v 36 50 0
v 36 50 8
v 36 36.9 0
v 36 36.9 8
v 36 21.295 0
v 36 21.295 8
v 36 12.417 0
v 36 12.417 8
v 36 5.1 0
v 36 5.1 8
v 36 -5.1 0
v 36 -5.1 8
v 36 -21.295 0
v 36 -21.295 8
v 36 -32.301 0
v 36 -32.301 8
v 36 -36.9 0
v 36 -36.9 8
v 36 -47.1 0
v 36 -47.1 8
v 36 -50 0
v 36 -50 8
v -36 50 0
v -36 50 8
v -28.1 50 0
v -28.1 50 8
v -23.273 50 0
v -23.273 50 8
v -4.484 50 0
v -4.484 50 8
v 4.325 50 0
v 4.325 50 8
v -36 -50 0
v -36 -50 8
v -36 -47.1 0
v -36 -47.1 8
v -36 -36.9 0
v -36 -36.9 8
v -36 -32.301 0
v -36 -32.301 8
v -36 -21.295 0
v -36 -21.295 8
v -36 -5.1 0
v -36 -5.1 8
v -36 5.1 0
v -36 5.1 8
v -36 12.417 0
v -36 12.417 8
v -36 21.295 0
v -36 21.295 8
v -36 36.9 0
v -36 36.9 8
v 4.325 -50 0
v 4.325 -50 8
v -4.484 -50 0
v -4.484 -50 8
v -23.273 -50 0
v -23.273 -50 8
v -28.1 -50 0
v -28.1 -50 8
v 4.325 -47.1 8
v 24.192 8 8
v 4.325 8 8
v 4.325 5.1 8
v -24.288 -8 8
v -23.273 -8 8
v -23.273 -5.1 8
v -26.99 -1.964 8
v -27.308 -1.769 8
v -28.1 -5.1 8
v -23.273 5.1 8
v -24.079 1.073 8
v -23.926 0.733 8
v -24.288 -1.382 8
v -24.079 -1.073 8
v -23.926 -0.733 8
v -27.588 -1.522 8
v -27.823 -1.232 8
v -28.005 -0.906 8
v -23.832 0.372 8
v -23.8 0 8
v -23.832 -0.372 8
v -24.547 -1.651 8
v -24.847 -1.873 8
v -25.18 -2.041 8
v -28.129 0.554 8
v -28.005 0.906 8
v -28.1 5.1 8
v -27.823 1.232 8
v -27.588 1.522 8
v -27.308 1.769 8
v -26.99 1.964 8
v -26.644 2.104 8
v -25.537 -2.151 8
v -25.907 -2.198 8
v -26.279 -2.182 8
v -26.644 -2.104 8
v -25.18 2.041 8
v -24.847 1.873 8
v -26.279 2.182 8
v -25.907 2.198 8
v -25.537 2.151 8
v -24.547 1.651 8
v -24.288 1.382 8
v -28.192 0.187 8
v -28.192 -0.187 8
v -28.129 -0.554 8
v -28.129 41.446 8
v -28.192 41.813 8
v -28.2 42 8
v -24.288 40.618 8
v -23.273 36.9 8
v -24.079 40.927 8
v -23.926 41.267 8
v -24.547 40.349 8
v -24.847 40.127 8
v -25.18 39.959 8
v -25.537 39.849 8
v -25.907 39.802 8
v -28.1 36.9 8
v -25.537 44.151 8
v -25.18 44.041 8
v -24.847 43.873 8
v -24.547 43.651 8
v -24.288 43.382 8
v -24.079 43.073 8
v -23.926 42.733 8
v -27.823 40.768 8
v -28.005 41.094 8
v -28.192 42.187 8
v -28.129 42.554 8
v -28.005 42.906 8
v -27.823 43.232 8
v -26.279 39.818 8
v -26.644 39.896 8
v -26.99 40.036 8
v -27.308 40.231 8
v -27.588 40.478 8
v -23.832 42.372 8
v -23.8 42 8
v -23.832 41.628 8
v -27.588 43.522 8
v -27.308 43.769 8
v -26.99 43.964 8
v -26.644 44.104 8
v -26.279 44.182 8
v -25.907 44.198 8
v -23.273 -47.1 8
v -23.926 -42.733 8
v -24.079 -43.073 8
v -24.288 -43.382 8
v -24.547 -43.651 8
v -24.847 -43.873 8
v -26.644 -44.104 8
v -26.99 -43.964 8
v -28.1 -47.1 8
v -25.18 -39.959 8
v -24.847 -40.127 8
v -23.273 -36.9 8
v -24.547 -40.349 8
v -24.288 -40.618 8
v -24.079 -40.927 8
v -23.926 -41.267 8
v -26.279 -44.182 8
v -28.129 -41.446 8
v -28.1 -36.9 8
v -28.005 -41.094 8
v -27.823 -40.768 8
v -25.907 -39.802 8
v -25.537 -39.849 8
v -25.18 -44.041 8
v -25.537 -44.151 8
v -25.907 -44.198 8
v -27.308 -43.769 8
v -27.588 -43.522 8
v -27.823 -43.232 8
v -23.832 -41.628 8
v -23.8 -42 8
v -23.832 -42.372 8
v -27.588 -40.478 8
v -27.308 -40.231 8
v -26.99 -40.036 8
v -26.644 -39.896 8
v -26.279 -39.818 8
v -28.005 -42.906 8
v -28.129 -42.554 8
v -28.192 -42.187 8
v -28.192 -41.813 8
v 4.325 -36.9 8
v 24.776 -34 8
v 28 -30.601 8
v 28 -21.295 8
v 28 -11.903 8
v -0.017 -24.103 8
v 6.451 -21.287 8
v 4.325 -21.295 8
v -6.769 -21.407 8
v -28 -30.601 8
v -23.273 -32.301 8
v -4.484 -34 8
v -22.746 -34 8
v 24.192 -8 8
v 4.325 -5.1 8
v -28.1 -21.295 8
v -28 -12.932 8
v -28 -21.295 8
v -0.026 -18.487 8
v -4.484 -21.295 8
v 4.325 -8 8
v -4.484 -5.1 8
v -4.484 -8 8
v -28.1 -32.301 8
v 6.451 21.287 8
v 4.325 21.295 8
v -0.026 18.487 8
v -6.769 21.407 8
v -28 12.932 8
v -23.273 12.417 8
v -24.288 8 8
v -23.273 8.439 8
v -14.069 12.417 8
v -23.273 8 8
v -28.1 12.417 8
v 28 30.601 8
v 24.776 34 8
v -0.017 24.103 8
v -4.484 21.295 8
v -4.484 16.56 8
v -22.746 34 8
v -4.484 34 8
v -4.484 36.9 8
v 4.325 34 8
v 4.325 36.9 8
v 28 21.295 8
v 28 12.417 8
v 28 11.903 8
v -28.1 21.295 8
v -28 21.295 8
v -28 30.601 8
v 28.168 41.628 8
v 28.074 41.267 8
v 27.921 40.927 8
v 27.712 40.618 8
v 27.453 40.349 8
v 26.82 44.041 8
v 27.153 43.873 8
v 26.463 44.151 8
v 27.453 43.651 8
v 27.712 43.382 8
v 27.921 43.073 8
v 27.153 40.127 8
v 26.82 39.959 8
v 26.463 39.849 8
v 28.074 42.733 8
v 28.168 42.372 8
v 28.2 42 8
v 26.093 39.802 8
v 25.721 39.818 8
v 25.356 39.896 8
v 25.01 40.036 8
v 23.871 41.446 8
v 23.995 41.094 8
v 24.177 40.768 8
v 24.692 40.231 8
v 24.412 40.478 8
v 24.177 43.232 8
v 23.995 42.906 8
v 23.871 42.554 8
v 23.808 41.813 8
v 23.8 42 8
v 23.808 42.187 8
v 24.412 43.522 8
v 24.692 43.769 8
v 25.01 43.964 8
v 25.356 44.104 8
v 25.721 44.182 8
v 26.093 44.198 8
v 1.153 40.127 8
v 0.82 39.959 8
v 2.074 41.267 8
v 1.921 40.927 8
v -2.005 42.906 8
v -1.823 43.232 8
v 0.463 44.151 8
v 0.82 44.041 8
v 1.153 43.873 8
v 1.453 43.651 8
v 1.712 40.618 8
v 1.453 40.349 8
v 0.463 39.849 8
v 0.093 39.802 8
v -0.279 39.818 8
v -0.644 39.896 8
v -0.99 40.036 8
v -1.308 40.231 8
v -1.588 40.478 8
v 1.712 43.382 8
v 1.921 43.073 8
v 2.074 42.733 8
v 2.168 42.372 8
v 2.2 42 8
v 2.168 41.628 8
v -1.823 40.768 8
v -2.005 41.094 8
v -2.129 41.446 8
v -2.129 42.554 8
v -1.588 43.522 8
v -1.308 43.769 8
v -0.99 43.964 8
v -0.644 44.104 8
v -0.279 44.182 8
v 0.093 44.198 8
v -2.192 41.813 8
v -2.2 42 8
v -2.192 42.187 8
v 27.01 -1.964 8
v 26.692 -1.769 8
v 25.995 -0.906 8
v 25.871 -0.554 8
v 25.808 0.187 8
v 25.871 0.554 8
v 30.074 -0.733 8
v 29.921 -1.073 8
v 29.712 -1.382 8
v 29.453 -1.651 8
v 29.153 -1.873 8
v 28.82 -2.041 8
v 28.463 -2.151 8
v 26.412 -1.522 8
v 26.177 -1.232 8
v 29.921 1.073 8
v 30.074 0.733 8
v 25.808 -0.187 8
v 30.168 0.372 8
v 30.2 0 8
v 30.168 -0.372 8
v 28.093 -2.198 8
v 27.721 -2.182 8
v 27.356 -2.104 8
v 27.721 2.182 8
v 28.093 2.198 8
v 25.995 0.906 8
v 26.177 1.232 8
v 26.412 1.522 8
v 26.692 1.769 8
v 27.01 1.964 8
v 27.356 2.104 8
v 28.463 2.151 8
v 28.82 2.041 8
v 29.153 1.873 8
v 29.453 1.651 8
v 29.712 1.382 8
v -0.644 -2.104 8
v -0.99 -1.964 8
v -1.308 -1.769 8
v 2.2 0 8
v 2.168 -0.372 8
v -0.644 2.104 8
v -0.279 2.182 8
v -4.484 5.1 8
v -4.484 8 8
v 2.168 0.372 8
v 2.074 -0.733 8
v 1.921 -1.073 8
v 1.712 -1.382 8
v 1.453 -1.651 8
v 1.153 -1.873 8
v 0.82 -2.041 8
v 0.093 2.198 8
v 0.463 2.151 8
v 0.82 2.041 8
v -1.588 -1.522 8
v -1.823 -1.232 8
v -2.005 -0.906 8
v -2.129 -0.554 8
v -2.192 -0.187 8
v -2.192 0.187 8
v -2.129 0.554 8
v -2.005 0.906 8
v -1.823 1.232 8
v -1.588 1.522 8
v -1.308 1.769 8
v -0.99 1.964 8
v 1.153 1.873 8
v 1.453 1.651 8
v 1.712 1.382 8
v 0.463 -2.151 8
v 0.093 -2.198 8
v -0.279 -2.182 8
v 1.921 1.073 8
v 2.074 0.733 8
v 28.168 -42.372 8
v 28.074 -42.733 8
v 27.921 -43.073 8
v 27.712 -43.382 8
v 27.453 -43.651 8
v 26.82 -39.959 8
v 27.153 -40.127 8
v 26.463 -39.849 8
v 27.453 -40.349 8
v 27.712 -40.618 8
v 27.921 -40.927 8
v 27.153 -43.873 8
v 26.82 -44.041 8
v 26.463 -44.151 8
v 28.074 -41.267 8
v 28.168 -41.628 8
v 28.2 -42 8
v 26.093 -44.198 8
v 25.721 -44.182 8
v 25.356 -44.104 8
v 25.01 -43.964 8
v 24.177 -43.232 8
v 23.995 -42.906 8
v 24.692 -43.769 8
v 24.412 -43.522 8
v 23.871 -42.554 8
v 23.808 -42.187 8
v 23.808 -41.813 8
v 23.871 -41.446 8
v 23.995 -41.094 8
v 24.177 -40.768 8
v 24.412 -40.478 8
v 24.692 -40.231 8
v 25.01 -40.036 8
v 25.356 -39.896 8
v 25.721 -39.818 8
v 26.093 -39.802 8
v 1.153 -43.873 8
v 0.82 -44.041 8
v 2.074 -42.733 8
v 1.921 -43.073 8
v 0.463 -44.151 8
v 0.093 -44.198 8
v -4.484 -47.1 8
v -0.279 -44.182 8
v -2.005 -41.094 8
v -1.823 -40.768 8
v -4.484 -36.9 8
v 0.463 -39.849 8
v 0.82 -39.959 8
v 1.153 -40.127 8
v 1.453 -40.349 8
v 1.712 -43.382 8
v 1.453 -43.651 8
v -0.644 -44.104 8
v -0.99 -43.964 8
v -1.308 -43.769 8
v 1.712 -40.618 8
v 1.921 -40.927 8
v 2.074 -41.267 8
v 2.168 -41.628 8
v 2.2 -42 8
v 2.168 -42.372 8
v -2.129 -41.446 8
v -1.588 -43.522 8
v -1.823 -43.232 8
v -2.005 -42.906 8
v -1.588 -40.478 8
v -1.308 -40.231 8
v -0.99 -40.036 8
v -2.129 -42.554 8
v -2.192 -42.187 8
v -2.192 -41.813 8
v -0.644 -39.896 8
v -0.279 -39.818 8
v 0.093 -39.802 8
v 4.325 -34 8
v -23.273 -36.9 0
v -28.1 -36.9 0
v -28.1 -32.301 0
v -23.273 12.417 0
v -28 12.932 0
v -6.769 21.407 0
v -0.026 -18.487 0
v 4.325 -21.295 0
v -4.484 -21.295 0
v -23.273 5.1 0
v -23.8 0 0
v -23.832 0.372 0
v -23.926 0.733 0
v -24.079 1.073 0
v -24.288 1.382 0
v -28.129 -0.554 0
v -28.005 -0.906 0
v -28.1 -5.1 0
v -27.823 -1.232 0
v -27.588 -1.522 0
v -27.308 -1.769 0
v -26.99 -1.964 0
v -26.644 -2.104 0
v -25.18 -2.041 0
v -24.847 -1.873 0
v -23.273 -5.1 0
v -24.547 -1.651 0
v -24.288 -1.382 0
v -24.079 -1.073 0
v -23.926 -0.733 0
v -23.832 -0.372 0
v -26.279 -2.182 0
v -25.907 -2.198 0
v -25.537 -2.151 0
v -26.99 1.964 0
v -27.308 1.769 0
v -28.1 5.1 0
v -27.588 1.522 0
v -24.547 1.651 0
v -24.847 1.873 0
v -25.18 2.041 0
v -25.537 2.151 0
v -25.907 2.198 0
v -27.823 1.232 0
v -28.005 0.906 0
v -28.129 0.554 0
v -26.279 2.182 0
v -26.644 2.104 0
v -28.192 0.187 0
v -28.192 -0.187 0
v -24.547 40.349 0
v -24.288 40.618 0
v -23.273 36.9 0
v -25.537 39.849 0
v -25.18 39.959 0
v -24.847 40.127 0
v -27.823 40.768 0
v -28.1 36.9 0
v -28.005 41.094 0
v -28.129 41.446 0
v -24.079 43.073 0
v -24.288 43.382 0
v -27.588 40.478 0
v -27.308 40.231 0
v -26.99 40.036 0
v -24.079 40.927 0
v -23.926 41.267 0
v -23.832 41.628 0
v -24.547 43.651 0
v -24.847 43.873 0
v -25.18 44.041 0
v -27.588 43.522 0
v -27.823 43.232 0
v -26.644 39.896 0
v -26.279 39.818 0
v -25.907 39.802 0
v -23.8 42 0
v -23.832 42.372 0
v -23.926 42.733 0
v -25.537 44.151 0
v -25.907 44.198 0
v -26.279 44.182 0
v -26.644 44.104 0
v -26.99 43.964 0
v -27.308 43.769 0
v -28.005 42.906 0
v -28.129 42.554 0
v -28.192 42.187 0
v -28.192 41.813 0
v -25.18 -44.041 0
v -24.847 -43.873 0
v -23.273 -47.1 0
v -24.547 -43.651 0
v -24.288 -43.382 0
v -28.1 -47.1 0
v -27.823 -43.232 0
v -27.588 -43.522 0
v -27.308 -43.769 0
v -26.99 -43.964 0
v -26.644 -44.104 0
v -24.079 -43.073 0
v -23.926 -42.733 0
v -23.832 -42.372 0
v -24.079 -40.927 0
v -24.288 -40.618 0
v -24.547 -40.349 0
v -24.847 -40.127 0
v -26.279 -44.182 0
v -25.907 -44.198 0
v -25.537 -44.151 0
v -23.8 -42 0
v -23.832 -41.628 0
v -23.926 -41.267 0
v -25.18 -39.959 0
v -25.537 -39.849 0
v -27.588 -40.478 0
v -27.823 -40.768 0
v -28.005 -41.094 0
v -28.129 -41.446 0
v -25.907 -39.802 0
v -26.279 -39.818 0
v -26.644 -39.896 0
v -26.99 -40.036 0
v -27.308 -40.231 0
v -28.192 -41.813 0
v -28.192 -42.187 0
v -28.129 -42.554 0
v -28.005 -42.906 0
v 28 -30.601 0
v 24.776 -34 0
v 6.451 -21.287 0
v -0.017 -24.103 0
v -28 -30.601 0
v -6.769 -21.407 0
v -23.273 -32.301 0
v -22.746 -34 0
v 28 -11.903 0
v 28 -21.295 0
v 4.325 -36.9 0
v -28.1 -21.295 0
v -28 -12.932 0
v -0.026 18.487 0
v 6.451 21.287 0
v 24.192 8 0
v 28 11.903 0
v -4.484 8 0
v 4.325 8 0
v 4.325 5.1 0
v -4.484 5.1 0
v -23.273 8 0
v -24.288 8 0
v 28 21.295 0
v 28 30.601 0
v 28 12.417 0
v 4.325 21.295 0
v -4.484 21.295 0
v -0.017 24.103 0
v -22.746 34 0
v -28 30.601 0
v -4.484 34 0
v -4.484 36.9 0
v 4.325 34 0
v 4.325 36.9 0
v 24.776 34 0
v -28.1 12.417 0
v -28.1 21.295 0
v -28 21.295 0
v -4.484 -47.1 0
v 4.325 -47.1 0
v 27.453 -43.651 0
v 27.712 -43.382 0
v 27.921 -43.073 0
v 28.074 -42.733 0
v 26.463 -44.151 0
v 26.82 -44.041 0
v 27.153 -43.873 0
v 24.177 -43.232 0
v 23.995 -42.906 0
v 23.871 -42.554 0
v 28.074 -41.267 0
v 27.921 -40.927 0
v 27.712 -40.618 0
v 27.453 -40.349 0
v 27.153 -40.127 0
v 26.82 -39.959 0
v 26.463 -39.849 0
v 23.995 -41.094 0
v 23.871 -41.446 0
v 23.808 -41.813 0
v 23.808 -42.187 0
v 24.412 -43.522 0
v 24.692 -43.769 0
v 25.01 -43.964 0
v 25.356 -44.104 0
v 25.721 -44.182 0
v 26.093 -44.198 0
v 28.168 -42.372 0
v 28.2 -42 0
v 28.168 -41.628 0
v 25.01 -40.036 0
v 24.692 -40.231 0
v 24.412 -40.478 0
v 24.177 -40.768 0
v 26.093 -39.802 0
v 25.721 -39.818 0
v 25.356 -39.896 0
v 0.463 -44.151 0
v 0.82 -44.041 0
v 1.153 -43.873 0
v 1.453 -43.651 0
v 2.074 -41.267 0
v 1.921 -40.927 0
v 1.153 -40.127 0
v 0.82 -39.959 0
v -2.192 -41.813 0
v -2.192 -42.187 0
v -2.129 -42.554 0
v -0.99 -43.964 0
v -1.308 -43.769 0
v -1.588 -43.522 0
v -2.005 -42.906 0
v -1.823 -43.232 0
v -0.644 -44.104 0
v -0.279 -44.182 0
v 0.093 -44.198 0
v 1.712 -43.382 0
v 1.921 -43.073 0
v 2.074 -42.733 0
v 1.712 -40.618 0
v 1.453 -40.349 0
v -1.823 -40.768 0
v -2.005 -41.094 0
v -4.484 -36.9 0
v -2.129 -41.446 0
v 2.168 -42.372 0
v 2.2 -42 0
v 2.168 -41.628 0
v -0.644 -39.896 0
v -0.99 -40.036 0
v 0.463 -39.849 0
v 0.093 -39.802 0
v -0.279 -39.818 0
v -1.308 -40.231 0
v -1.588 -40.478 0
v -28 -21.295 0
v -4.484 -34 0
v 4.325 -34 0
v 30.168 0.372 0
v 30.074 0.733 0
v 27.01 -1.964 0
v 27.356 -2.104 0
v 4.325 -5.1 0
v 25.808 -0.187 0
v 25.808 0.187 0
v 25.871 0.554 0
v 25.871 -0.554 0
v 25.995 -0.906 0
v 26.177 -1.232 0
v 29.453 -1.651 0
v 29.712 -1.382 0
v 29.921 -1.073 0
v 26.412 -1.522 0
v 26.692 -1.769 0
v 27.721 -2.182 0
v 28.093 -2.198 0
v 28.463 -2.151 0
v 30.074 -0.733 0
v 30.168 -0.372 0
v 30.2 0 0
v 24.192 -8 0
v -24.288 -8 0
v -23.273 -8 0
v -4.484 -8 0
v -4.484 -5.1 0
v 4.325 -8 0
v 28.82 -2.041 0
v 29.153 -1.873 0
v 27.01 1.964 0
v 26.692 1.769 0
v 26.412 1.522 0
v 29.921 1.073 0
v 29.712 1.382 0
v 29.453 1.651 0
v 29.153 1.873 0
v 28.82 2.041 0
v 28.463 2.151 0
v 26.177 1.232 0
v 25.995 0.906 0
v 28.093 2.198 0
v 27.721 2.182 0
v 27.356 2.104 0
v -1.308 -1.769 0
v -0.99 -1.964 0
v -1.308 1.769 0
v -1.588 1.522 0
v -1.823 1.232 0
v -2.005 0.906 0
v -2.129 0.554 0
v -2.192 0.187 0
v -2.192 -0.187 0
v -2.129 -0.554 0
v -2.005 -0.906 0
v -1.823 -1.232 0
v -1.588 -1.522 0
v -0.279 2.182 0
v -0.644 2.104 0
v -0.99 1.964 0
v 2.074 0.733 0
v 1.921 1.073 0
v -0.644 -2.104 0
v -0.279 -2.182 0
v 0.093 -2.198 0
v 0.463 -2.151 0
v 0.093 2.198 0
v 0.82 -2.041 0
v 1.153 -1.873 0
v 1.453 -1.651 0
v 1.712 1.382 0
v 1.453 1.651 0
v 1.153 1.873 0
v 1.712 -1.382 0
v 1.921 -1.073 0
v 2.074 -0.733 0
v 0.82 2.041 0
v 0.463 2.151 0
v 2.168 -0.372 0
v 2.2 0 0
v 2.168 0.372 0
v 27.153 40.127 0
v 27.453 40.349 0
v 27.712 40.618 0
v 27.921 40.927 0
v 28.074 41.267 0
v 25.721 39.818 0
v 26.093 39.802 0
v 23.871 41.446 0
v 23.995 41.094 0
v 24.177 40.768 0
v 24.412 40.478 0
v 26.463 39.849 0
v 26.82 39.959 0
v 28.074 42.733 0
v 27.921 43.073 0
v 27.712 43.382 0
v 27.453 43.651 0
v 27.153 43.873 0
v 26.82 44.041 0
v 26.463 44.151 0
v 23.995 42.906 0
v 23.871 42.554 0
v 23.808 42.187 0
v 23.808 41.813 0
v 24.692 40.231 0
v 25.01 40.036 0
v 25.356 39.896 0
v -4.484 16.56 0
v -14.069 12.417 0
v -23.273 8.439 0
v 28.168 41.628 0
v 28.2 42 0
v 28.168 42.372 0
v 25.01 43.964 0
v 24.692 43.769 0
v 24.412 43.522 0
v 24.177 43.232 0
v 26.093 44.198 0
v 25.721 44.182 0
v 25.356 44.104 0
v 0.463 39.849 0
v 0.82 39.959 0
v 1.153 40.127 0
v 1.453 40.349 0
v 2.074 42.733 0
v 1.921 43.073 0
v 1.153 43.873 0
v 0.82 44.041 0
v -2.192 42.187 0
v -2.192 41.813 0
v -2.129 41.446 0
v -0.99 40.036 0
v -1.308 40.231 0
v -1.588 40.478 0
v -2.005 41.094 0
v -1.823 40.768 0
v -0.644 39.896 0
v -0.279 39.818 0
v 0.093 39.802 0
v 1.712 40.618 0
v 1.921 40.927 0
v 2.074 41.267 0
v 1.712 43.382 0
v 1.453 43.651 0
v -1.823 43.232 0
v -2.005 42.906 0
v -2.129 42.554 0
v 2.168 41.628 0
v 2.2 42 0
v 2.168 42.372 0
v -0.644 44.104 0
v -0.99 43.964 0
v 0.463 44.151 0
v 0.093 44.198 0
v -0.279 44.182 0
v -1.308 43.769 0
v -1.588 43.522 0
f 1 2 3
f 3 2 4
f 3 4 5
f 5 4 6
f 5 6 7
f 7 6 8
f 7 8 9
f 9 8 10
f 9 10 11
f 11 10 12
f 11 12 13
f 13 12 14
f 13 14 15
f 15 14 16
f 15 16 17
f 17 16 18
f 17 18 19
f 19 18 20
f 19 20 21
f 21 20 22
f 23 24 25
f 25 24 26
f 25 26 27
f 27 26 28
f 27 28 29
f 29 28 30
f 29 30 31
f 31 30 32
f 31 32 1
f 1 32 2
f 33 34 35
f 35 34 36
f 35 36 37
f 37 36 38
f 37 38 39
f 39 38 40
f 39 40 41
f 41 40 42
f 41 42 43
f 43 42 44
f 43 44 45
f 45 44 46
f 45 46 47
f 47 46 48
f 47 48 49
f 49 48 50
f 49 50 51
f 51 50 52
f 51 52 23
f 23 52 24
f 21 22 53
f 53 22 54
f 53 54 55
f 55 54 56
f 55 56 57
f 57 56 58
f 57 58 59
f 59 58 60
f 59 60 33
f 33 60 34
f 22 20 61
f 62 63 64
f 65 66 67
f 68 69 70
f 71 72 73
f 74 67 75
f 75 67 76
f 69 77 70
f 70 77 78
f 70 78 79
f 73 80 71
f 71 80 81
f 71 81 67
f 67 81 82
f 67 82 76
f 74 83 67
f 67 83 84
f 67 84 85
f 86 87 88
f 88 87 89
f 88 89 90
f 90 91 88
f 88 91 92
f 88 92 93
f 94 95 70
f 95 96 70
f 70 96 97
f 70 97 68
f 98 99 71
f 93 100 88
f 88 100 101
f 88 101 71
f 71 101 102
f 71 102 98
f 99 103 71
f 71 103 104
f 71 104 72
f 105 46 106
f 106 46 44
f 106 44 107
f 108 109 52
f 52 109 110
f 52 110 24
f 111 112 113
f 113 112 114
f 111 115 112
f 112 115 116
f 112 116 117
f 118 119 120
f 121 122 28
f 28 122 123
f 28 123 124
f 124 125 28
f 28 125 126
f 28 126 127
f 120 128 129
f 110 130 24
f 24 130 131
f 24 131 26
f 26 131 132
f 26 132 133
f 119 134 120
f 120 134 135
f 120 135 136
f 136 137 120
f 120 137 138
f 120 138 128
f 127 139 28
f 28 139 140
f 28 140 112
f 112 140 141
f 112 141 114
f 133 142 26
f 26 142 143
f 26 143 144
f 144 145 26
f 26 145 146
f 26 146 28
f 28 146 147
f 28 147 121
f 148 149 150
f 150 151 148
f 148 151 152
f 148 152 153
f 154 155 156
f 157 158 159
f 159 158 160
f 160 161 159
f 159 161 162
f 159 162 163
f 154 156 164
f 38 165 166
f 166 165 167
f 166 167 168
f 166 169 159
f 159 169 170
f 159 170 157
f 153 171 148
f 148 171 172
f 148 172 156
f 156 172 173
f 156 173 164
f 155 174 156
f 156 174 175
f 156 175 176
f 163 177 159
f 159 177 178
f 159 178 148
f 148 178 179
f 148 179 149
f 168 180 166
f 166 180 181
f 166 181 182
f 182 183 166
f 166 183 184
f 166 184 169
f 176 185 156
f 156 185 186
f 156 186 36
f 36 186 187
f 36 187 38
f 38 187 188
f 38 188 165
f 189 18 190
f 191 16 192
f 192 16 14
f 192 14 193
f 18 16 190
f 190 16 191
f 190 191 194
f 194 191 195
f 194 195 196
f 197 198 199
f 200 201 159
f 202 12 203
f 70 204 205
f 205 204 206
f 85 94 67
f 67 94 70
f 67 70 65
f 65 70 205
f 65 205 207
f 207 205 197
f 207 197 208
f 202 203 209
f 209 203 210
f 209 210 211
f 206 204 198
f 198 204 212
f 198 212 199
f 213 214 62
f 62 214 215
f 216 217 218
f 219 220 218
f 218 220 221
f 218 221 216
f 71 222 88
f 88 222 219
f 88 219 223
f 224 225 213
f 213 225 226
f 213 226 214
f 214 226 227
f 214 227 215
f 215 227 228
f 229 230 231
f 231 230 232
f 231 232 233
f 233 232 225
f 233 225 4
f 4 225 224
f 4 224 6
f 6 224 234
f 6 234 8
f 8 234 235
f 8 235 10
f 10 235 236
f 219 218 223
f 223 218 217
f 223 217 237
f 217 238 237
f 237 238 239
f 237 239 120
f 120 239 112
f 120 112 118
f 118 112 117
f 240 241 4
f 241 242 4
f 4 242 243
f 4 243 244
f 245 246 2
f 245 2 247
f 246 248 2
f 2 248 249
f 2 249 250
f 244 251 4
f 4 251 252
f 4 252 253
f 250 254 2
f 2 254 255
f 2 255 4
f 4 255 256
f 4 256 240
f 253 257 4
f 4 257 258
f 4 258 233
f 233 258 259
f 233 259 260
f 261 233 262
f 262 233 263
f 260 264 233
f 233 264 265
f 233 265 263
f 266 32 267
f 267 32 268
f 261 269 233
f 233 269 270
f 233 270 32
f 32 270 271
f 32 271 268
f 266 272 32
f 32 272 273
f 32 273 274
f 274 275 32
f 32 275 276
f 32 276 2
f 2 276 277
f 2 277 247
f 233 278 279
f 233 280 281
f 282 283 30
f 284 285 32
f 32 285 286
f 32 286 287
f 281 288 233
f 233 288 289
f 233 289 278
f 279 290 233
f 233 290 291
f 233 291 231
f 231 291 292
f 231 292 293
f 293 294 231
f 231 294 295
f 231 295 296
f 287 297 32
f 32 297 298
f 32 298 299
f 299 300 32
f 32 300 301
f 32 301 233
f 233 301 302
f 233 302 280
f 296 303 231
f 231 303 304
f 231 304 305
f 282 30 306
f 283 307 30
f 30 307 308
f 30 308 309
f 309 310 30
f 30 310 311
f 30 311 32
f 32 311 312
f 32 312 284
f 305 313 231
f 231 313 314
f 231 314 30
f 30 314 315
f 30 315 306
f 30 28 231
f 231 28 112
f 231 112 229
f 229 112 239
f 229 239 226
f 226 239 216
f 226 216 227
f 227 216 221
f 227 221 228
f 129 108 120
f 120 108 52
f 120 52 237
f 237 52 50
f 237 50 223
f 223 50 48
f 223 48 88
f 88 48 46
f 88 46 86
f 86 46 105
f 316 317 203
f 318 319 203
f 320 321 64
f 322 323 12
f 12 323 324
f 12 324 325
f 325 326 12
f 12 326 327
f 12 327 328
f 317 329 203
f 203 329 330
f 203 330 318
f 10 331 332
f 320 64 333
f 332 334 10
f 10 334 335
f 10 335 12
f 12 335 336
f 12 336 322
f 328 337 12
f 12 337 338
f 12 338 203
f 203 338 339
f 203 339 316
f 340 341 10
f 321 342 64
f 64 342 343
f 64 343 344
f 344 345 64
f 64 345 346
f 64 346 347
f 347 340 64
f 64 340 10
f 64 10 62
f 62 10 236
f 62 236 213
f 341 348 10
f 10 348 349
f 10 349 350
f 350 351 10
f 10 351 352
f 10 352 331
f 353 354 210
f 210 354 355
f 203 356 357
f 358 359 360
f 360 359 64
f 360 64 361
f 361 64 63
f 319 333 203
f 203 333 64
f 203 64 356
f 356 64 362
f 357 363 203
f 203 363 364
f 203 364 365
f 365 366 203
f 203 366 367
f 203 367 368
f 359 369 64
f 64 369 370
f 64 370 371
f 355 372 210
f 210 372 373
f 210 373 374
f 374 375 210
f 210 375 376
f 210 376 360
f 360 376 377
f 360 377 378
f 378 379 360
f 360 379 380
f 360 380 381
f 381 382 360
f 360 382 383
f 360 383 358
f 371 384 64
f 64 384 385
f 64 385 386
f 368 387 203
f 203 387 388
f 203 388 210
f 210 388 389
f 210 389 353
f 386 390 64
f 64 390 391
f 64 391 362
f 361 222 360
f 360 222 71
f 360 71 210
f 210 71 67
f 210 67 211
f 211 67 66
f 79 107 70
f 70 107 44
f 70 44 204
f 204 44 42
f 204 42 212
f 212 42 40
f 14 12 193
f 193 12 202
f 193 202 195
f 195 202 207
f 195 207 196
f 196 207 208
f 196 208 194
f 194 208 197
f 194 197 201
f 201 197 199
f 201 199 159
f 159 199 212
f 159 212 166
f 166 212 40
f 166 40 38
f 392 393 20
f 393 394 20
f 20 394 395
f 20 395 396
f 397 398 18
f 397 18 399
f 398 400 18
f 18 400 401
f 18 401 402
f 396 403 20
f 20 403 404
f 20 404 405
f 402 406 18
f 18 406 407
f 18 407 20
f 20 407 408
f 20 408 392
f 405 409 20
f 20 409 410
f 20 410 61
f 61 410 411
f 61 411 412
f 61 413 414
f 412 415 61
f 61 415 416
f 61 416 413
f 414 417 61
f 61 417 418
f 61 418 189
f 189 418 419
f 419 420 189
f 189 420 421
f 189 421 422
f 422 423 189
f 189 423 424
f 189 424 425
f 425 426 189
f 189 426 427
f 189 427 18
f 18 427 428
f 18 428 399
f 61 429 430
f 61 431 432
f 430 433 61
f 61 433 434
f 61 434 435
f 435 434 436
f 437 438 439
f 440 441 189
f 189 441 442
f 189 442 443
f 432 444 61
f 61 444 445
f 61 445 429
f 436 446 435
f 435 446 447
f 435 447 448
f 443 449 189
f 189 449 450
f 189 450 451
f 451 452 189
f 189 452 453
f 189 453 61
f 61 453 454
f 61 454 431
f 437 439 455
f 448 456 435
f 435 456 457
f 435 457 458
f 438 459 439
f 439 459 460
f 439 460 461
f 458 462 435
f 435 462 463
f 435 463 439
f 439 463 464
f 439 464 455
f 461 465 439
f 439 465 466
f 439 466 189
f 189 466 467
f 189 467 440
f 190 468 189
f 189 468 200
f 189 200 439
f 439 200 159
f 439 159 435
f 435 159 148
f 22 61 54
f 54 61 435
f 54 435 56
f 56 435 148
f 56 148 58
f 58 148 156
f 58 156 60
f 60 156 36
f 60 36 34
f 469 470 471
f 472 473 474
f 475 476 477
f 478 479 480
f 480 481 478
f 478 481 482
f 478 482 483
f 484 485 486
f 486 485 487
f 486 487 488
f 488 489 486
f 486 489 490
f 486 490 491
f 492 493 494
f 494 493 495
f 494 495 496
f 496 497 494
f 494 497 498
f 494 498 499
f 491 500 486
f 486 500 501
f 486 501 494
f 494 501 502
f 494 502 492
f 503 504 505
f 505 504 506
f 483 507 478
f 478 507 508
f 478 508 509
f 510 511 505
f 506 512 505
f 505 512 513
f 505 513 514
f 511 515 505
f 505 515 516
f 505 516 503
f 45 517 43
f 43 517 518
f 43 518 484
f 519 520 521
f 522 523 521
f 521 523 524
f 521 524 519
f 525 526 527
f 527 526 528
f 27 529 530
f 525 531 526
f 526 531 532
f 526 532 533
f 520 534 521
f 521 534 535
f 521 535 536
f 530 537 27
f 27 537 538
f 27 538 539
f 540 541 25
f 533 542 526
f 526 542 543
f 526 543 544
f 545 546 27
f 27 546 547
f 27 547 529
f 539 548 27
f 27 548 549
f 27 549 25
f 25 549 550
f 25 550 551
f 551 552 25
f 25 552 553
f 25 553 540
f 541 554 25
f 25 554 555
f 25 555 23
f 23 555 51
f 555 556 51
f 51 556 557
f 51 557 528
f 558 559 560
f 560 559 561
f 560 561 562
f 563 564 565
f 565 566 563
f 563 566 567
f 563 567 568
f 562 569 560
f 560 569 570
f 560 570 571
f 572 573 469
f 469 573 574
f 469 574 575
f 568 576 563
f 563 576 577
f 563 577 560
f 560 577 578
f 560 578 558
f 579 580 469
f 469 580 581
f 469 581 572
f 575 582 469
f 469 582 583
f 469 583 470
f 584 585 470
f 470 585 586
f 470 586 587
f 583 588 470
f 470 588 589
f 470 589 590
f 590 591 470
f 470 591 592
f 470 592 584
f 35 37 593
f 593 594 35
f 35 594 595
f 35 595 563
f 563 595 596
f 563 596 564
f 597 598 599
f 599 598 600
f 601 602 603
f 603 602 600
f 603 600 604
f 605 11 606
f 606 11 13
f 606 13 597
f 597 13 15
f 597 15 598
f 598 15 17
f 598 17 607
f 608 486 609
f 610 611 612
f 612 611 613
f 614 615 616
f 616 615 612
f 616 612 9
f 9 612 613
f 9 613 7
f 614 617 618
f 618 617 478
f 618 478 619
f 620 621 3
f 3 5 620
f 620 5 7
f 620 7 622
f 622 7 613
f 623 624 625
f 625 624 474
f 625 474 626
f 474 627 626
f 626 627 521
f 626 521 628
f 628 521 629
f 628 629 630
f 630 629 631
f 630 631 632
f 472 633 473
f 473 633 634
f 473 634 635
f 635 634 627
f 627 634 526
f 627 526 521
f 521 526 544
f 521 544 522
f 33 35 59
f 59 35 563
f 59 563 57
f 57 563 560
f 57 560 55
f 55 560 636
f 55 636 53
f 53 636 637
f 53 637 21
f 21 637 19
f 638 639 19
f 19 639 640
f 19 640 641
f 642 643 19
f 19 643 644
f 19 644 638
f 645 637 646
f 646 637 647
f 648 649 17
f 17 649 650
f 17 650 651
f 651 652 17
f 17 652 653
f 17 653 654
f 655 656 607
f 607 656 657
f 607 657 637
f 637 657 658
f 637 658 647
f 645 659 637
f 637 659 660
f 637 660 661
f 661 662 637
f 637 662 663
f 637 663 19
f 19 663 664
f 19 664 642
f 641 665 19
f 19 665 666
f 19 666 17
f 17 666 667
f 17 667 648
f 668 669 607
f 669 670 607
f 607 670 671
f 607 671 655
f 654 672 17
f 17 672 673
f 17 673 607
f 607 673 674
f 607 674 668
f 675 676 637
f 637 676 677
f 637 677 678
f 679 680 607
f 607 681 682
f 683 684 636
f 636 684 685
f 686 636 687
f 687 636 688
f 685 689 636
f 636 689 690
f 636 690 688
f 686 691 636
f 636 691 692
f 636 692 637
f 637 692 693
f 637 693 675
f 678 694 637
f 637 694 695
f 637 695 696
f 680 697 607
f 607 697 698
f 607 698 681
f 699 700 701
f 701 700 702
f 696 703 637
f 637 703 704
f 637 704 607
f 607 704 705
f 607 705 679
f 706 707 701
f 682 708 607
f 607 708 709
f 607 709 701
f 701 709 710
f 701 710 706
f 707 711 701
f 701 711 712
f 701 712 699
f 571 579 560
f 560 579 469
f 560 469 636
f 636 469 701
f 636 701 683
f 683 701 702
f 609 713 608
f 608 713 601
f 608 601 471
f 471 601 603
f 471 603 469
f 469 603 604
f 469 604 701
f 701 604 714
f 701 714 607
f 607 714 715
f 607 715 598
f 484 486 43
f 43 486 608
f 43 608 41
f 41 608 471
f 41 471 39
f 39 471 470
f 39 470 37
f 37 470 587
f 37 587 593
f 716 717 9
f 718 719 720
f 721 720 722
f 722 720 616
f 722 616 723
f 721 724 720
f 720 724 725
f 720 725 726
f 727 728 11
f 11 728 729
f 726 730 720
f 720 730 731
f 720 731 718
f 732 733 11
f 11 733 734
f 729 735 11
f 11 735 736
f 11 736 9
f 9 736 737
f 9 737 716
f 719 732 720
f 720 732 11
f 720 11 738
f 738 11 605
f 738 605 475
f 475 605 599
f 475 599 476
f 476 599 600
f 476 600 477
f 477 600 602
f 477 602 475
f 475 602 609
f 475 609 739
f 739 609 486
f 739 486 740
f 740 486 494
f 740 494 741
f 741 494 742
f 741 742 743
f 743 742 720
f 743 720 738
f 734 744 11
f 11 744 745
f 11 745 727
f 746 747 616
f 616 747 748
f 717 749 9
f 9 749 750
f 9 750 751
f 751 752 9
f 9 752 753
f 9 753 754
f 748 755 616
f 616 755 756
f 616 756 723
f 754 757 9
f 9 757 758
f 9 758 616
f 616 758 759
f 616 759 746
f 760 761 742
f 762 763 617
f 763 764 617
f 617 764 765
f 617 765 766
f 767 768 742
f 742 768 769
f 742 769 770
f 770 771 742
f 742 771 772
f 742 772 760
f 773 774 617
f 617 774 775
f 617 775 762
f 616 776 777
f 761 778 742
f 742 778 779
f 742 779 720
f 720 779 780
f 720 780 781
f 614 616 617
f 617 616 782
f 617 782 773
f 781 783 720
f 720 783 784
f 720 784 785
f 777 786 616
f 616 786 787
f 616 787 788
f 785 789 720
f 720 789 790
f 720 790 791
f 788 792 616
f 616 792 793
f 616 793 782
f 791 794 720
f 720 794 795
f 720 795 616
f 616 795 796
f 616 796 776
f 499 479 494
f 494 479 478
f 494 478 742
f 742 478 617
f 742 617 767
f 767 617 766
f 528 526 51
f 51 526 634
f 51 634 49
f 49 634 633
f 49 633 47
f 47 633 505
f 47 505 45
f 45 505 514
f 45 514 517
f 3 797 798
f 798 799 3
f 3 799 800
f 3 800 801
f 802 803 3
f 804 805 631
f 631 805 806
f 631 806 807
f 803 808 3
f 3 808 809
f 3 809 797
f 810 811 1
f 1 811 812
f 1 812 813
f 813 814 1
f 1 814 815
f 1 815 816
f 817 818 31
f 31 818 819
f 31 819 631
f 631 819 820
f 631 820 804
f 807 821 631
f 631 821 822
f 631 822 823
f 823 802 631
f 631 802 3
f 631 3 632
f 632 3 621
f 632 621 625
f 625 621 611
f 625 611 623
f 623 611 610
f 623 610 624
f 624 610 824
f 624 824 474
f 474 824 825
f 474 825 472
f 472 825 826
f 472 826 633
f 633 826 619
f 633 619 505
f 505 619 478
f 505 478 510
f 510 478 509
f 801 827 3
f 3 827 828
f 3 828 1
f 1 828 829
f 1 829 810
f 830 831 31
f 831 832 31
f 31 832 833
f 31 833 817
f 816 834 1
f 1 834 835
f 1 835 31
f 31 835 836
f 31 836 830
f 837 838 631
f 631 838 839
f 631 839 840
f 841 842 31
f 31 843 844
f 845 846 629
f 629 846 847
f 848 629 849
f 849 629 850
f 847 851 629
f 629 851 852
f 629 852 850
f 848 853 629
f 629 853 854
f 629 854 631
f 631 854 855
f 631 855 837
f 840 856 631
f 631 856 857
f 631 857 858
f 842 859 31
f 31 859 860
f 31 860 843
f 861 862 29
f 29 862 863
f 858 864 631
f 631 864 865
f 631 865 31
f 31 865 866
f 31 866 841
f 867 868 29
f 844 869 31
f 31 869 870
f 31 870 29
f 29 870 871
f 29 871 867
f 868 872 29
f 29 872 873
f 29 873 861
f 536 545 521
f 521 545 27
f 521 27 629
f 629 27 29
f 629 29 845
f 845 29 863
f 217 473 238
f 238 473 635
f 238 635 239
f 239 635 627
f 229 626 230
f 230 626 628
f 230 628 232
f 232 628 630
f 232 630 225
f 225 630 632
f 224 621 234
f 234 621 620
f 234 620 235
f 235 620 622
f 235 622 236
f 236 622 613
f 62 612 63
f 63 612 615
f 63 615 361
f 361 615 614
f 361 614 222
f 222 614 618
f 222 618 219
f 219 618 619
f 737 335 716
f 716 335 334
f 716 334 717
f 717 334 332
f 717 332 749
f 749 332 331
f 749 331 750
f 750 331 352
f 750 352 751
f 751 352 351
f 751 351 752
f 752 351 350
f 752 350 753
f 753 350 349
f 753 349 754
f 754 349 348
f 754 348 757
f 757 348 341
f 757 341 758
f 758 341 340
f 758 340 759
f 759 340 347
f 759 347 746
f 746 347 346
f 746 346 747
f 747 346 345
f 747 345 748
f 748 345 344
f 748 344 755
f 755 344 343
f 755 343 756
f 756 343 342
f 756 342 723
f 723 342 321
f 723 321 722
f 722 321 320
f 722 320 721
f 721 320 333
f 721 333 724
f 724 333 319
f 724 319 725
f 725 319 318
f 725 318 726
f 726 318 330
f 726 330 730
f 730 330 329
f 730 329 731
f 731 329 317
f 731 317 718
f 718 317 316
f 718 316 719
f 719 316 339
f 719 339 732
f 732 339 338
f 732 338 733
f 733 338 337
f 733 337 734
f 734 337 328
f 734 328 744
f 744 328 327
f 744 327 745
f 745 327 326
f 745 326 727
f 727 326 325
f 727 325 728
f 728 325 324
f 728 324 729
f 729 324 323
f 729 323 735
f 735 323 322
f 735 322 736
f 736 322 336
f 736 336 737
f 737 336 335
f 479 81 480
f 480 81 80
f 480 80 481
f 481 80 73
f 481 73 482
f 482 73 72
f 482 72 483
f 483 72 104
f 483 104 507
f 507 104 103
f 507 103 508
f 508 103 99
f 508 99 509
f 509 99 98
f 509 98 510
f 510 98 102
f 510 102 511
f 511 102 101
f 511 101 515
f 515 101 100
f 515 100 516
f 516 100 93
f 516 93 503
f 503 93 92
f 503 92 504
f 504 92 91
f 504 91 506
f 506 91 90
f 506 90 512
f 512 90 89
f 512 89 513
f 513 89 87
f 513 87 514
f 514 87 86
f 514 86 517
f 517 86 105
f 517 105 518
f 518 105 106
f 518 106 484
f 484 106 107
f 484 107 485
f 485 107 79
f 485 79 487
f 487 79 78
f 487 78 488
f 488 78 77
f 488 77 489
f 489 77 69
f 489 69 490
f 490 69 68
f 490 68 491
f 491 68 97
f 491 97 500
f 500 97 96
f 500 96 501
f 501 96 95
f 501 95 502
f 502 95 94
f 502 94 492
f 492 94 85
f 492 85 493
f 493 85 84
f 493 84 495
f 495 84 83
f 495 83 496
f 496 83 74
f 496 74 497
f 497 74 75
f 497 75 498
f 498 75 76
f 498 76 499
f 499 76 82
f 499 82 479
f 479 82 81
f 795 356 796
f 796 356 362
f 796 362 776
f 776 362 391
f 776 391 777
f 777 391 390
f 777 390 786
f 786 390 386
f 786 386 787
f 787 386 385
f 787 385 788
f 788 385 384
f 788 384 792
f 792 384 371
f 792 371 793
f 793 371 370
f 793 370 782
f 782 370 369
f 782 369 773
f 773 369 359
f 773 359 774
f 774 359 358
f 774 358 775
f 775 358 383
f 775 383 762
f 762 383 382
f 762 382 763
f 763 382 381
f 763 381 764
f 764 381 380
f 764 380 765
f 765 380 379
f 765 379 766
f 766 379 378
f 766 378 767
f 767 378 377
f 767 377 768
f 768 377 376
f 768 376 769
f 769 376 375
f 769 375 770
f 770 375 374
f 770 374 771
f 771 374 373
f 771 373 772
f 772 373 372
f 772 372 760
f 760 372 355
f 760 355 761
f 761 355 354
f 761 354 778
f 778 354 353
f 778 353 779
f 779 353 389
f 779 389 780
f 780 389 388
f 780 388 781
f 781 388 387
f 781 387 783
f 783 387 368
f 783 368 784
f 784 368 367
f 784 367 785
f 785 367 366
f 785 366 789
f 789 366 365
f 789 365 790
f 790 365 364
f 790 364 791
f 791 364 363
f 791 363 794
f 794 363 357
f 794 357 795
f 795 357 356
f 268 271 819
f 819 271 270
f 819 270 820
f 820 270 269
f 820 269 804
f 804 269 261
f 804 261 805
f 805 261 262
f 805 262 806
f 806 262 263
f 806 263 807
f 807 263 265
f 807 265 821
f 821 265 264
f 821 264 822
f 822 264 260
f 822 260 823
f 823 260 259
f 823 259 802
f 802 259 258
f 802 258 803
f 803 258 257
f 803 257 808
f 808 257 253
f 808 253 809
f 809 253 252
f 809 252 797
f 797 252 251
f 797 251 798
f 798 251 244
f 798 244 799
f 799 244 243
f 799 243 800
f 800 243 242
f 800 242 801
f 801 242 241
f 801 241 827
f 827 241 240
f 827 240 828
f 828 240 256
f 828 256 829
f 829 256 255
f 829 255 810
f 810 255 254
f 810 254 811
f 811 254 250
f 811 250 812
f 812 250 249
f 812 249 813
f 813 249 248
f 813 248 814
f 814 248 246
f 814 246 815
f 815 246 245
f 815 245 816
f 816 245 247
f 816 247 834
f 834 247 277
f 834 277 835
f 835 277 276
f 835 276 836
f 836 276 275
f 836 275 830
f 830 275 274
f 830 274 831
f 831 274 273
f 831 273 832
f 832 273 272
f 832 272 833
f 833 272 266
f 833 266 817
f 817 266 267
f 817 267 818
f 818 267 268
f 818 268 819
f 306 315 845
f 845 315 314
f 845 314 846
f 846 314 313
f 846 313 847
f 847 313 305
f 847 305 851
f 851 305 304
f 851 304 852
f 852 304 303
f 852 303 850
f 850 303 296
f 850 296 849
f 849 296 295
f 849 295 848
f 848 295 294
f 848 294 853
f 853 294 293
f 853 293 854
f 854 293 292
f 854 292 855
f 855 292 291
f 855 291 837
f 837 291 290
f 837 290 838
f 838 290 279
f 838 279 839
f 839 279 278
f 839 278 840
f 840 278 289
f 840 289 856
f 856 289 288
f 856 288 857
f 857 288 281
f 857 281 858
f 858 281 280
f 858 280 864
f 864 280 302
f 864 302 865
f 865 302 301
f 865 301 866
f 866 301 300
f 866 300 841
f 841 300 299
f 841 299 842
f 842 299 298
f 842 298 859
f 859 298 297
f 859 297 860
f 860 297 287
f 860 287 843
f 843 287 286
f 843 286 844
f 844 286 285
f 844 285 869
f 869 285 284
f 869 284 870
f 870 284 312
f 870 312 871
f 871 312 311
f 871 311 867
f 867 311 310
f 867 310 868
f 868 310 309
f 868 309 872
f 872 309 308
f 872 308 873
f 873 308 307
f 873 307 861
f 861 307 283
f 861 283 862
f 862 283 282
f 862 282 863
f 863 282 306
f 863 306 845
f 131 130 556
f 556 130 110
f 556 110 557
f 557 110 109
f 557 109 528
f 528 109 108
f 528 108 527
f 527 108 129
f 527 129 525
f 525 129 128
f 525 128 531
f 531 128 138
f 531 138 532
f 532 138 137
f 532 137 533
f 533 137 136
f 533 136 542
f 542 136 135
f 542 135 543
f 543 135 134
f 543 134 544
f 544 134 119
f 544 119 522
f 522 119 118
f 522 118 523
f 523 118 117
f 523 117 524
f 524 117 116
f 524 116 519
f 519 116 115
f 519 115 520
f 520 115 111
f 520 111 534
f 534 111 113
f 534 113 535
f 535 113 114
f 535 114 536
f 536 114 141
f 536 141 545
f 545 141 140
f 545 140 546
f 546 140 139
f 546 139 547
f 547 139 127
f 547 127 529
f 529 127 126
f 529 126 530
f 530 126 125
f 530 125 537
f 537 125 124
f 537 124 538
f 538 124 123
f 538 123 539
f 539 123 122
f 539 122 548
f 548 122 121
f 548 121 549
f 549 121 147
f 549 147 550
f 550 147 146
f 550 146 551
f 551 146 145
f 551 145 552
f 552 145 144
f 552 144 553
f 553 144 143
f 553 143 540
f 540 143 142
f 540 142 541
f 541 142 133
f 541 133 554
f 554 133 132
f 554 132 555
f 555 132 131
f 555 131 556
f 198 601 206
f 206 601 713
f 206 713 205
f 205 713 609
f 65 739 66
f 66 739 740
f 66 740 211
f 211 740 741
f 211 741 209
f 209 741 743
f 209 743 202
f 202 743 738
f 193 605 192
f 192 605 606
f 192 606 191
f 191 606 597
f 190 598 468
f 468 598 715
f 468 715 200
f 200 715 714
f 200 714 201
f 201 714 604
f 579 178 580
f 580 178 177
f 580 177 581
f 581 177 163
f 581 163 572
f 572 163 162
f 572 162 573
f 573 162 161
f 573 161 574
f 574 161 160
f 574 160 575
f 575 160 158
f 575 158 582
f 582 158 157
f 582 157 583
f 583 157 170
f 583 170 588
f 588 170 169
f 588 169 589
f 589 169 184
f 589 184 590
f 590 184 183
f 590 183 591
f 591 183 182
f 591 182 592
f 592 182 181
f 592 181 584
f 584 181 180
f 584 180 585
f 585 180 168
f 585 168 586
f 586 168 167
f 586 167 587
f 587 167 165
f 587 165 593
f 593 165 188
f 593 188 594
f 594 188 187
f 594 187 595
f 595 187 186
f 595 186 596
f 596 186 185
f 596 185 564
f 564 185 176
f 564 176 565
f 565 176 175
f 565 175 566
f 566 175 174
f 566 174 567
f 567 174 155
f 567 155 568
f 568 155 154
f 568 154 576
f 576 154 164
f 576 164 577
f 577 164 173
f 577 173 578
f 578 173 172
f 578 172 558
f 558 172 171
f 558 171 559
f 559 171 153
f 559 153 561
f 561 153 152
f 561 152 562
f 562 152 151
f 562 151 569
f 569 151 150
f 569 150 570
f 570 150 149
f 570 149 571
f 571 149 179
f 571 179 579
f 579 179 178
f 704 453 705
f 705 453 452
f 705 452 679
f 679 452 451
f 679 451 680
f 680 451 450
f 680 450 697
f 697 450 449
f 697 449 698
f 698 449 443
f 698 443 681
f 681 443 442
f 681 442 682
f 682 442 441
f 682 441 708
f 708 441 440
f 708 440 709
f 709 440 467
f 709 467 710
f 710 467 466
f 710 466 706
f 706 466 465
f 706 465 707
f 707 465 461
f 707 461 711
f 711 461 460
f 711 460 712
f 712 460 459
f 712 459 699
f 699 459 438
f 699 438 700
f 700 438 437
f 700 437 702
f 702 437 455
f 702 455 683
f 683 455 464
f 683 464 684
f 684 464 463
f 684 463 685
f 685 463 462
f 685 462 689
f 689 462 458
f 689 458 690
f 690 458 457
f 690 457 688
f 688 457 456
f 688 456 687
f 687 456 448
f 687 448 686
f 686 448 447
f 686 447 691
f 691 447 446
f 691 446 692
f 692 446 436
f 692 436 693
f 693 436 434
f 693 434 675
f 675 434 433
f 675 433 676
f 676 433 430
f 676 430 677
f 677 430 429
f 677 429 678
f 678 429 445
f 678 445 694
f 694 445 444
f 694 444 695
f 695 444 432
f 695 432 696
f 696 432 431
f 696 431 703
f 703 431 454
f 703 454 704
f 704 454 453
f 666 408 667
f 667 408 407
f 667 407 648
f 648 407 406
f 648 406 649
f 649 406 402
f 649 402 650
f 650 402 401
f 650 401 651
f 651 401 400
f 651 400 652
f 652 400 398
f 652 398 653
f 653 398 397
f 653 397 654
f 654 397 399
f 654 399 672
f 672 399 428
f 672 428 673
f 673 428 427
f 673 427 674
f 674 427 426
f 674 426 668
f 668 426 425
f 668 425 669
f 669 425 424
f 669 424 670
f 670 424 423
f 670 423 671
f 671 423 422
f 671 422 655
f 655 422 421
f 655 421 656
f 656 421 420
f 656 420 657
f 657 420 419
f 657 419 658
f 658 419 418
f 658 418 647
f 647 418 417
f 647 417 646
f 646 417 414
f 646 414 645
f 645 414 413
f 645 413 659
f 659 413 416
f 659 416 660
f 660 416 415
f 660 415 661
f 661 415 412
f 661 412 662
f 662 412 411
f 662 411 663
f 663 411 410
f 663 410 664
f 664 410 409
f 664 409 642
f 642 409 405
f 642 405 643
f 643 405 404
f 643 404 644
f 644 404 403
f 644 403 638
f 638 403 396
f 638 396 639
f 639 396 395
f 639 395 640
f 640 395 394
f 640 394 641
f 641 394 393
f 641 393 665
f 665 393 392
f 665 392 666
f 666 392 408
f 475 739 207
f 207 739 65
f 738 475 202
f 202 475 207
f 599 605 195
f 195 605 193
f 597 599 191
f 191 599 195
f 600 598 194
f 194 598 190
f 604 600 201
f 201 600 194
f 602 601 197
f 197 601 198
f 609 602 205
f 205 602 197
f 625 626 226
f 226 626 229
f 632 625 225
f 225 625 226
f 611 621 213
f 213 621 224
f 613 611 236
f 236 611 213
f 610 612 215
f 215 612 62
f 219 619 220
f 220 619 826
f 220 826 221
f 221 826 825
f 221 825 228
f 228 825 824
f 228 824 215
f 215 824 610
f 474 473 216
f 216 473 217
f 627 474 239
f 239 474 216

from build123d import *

# Parameters (mm, degrees)
SKETCH_1_W          = 72
SKETCH_1_H          = 100
EXTRUDE_1_DEPTH     = 8
CUT_EXTRUDE_1_REACH = 64.129
SKETCH_2_R          = 2.2
SKETCH_2_W          = 56
SKETCH_2_H          = 26
EXTRUDE_2_DEPTH     = 8


with BuildPart() as part:
    # 草图1 → 凸台-拉伸1 (new body)
    with BuildSketch(Plane.XY):
        Rectangle(SKETCH_1_W, SKETCH_1_H)
    extrude(amount=EXTRUDE_1_DEPTH)

    # 草图2 → 切除-拉伸1 (cut, up to next)
    with BuildSketch(Plane.XY.offset(8), mode=Mode.PRIVATE) as cut_extrude_1_sk1:
        with Locations((-26, -42)):
            Circle(SKETCH_2_R)
    cut_extrude_1_tool1 = extrude(cut_extrude_1_sk1.sketch, amount=-CUT_EXTRUDE_1_REACH, mode=Mode.PRIVATE) & part.part
    # 草图2 → 切除-拉伸1 (cut, up to next)
    with BuildSketch(Plane.XY.offset(8), mode=Mode.PRIVATE) as cut_extrude_1_sk2:
        with Locations((0, -42)):
            Circle(SKETCH_2_R)
    cut_extrude_1_tool2 = extrude(cut_extrude_1_sk2.sketch, amount=-CUT_EXTRUDE_1_REACH, mode=Mode.PRIVATE) & part.part
    # 草图2 → 切除-拉伸1 (cut, up to next)
    with BuildSketch(Plane.XY.offset(8), mode=Mode.PRIVATE) as cut_extrude_1_sk3:
        with Locations((26, -42)):
            Circle(SKETCH_2_R)
    cut_extrude_1_tool3 = extrude(cut_extrude_1_sk3.sketch, amount=-CUT_EXTRUDE_1_REACH, mode=Mode.PRIVATE) & part.part
    # 草图2 → 切除-拉伸1 (cut, up to next)
    with BuildSketch(Plane.XY.offset(8), mode=Mode.PRIVATE) as cut_extrude_1_sk4:
        with Locations((26, 42)):
            Circle(SKETCH_2_R)
    cut_extrude_1_tool4 = extrude(cut_extrude_1_sk4.sketch, amount=-CUT_EXTRUDE_1_REACH, mode=Mode.PRIVATE) & part.part
    # 草图2 → 切除-拉伸1 (cut, up to next)
    with BuildSketch(Plane.XY.offset(8), mode=Mode.PRIVATE) as cut_extrude_1_sk5:
        with Locations((0, 42)):
            Circle(SKETCH_2_R)
    cut_extrude_1_tool5 = extrude(cut_extrude_1_sk5.sketch, amount=-CUT_EXTRUDE_1_REACH, mode=Mode.PRIVATE) & part.part
    # 草图2 → 切除-拉伸1 (cut, up to next)
    with BuildSketch(Plane.XY.offset(8), mode=Mode.PRIVATE) as cut_extrude_1_sk6:
        with Locations((-26, 42)):
            Circle(SKETCH_2_R)
    cut_extrude_1_tool6 = extrude(cut_extrude_1_sk6.sketch, amount=-CUT_EXTRUDE_1_REACH, mode=Mode.PRIVATE) & part.part
    # 草图2 → 切除-拉伸1 (cut, up to next)
    with BuildSketch(Plane.XY.offset(8), mode=Mode.PRIVATE) as cut_extrude_1_sk7:
        with Locations((-26, 0)):
            Circle(SKETCH_2_R)
    cut_extrude_1_tool7 = extrude(cut_extrude_1_sk7.sketch, amount=-CUT_EXTRUDE_1_REACH, mode=Mode.PRIVATE) & part.part
    # 草图2 → 切除-拉伸1 (cut, up to next)
    with BuildSketch(Plane.XY.offset(8), mode=Mode.PRIVATE) as cut_extrude_1_sk8:
        Circle(SKETCH_2_R)
    cut_extrude_1_tool8 = extrude(cut_extrude_1_sk8.sketch, amount=-CUT_EXTRUDE_1_REACH, mode=Mode.PRIVATE) & part.part
    # 草图2 → 切除-拉伸1 (cut, up to next)
    with BuildSketch(Plane.XY.offset(8), mode=Mode.PRIVATE) as cut_extrude_1_sk9:
        with Locations((28, 0)):
            Circle(SKETCH_2_R)
    cut_extrude_1_tool9 = extrude(cut_extrude_1_sk9.sketch, amount=-CUT_EXTRUDE_1_REACH, mode=Mode.PRIVATE) & part.part
    # 草图2 → 切除-拉伸1 (cut, up to next)
    with BuildSketch(Plane.XY.offset(8), mode=Mode.PRIVATE) as cut_extrude_1_sk10:
        with Locations((0, 21)):
            Rectangle(SKETCH_2_W, SKETCH_2_H)
    cut_extrude_1_tool10 = extrude(cut_extrude_1_sk10.sketch, amount=-CUT_EXTRUDE_1_REACH, mode=Mode.PRIVATE) & part.part
    # 草图2 → 切除-拉伸1 (cut, up to next)
    with BuildSketch(Plane.XY.offset(8), mode=Mode.PRIVATE) as cut_extrude_1_sk11:
        with Locations((0, -21)):
            Rectangle(SKETCH_2_W, SKETCH_2_H)
    cut_extrude_1_tool11 = extrude(cut_extrude_1_sk11.sketch, amount=-CUT_EXTRUDE_1_REACH, mode=Mode.PRIVATE) & part.part
    add(cut_extrude_1_tool1.solids().sort_by_distance((-26, -42, 8))[0], mode=Mode.SUBTRACT)
    add(cut_extrude_1_tool2.solids().sort_by_distance((0, -42, 8))[0], mode=Mode.SUBTRACT)
    add(cut_extrude_1_tool3.solids().sort_by_distance((26, -42, 8))[0], mode=Mode.SUBTRACT)
    add(cut_extrude_1_tool4.solids().sort_by_distance((26, 42, 8))[0], mode=Mode.SUBTRACT)
    add(cut_extrude_1_tool5.solids().sort_by_distance((0, 42, 8))[0], mode=Mode.SUBTRACT)
    add(cut_extrude_1_tool6.solids().sort_by_distance((-26, 42, 8))[0], mode=Mode.SUBTRACT)
    add(cut_extrude_1_tool7.solids().sort_by_distance((-26, 0, 8))[0], mode=Mode.SUBTRACT)
    add(cut_extrude_1_tool8.solids().sort_by_distance((0, 0, 8))[0], mode=Mode.SUBTRACT)
    add(cut_extrude_1_tool9.solids().sort_by_distance((28, 0, 8))[0], mode=Mode.SUBTRACT)
    add(cut_extrude_1_tool10.solids().sort_by_distance((0, 21, 8))[0], mode=Mode.SUBTRACT)
    add(cut_extrude_1_tool11.solids().sort_by_distance((0, -21, 8))[0], mode=Mode.SUBTRACT)

    # 草图3 → 凸台-拉伸2 (add)
    with BuildSketch(Plane.XY.offset(8)):
        Polygon((-28, 30.60122868), (-6.768682564, 21.407188314), (-28, 12.93157869), (-28, 8), (-24.288219299, 8), (-0.025829724, 18.487253581), (24.191837476, 8), (28, 8), (28, 11.903155093), (6.450556004, 21.286627452), (28, 30.60122868), (28, 34), (24.776184912, 34), (-0.016552798, 24.102660047), (-22.746110137, 34), (-28, 34), align=None)
        Polygon((-28, -8), (-24.288219299, -8), (-0.025829724, -18.487253581), (24.191837476, -8), (28, -8), (28, -11.903155093), (6.450556004, -21.286627452), (28, -30.60122868), (28, -34), (24.776184912, -34), (-0.016552798, -24.102660047), (-22.746110137, -34), (-28, -34), (-28, -30.60122868), (-6.768682564, -21.407188314), (-28, -12.93157869), align=None)
    extrude(amount=-EXTRUDE_2_DEPTH)


solid = part.part
